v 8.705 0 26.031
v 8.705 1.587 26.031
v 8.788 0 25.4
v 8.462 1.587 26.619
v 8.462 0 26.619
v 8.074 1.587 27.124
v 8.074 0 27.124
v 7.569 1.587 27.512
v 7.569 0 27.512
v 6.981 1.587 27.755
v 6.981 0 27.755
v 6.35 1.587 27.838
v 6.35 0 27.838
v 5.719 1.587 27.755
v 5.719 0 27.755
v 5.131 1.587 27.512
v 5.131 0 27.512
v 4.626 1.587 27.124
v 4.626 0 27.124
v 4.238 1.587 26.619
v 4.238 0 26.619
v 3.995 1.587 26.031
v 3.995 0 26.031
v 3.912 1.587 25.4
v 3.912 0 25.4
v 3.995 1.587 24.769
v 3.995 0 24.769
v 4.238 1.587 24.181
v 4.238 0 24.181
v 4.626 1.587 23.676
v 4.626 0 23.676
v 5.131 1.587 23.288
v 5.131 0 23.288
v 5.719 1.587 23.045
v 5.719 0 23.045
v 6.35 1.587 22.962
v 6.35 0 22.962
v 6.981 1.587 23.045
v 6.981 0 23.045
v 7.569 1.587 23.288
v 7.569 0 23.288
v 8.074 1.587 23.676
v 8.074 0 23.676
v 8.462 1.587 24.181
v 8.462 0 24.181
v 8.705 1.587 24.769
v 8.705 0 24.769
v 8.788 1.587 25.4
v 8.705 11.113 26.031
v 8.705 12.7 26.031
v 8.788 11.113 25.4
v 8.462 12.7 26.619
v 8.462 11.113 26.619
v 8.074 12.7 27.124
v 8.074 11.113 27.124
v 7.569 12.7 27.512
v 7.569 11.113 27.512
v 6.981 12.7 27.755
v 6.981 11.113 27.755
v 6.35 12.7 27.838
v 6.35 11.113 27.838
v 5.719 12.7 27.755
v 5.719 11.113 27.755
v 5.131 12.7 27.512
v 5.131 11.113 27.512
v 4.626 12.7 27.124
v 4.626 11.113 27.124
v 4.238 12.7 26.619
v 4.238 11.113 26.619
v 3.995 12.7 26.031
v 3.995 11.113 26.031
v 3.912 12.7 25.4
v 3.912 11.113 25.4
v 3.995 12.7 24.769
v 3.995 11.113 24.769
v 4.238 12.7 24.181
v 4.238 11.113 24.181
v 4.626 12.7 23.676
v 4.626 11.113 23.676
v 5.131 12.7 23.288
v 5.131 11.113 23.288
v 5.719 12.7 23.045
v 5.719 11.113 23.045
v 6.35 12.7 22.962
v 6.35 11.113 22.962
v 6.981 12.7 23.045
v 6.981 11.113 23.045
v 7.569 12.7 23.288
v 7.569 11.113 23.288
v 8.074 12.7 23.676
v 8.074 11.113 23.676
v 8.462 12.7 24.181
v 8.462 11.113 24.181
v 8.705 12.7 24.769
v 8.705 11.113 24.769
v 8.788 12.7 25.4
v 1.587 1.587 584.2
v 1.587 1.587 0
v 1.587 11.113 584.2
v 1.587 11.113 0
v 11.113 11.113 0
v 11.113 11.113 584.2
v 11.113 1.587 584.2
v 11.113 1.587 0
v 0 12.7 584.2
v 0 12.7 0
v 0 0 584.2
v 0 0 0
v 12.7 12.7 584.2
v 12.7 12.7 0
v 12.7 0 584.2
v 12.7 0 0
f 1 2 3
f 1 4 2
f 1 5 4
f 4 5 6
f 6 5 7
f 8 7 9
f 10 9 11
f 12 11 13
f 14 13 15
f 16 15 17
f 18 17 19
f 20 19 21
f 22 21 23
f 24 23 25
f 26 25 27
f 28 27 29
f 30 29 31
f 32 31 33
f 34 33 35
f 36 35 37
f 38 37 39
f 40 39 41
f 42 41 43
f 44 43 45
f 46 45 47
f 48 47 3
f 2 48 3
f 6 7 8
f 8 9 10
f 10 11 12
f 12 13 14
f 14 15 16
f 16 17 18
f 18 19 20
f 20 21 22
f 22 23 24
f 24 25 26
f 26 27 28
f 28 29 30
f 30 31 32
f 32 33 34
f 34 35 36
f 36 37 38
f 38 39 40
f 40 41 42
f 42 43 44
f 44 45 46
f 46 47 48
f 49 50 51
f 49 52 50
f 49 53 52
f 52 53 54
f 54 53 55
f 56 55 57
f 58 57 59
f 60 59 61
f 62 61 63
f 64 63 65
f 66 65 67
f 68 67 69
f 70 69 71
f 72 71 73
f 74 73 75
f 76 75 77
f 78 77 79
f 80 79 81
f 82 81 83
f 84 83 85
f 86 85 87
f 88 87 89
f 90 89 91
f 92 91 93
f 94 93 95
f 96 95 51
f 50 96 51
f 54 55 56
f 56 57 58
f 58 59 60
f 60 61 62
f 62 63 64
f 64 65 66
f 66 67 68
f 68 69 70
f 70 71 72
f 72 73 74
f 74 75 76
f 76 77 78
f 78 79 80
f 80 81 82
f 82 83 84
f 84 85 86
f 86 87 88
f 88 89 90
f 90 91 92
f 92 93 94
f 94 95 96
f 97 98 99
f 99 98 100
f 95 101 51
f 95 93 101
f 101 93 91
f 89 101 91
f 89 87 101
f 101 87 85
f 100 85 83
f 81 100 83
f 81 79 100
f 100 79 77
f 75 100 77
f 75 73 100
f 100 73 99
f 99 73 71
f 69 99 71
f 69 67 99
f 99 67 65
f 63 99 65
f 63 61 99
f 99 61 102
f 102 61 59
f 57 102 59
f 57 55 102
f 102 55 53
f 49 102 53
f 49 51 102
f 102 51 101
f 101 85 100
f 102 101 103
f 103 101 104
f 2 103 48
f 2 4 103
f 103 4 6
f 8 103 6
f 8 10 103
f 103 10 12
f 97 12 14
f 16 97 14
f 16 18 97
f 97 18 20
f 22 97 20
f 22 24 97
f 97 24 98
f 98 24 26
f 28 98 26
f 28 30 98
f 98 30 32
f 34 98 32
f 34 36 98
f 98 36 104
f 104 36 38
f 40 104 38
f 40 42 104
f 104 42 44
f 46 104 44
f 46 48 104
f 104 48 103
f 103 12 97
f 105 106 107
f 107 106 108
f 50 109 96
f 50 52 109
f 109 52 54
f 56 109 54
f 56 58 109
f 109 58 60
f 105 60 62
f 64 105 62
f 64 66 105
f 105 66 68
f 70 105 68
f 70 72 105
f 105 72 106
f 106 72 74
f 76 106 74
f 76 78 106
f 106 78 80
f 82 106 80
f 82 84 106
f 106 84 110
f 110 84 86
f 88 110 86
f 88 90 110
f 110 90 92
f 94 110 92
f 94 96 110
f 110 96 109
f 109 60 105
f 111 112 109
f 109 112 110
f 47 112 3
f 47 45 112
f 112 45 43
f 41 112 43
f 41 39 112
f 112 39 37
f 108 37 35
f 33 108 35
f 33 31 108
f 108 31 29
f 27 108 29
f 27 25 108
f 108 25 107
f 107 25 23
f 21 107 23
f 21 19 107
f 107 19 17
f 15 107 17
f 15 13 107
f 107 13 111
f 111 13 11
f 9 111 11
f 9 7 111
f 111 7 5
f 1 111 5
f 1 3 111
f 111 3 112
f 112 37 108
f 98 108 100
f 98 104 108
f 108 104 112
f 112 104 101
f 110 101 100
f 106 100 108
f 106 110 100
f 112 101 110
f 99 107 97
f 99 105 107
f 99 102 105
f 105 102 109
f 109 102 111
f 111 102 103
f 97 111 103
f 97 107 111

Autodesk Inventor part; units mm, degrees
ref_plane "YZ Plane" through (0, 0, 0) normal (1, 0, 0) x (0, 1, 0)
ref_plane "XZ Plane" through (0, 0, 0) normal (0, 1, 0) x (-1, 0, 0)
ref_plane "XY Plane" through (0, 0, 0) normal (0, 0, 1) x (1, 0, 0)
sketch "Sketch1" plane through (0, 0, 0) normal (0, 0, 1) x (1, 0, 0)
  line L0 (0, 0) -> (12.7, 0)
  line L1 (12.7, 0) -> (12.7, 12.7)
  line L2 (12.7, 12.7) -> (0, 12.7)
  line L3 (0, 12.7) -> (0, 0)
  dimension "d0" = 12.7
  dimension "d1" = 12.7
extrude "Extrusion1" add sketch "Sketch1" along normal blind 584.2
shell "Shell1" thickness 1.5875 removed faces 2 at (8.4667, 8.4667, 0) at (8.4667, 8.4667, 584.2)
sketch "Sketch2" plane through (0, 0, 0) normal (0, -1, 0) x (1, 0, 0)
  line L0 (0, 0) -> (0, 584.2) projected
  line L1 (0, 0) -> (12.7, 0) projected
  circle A0 centre (6.35, 25.4) radius 2.4384
  dimension "d5" = 4.8768
  dimension "d6" = 6.35
  dimension "d7" = 25.4
extrude "Extrusion2" cut sketch "Sketch2" against normal through all
properties part number "Shovel_RollerAxle" material "Aluminum-6061"
